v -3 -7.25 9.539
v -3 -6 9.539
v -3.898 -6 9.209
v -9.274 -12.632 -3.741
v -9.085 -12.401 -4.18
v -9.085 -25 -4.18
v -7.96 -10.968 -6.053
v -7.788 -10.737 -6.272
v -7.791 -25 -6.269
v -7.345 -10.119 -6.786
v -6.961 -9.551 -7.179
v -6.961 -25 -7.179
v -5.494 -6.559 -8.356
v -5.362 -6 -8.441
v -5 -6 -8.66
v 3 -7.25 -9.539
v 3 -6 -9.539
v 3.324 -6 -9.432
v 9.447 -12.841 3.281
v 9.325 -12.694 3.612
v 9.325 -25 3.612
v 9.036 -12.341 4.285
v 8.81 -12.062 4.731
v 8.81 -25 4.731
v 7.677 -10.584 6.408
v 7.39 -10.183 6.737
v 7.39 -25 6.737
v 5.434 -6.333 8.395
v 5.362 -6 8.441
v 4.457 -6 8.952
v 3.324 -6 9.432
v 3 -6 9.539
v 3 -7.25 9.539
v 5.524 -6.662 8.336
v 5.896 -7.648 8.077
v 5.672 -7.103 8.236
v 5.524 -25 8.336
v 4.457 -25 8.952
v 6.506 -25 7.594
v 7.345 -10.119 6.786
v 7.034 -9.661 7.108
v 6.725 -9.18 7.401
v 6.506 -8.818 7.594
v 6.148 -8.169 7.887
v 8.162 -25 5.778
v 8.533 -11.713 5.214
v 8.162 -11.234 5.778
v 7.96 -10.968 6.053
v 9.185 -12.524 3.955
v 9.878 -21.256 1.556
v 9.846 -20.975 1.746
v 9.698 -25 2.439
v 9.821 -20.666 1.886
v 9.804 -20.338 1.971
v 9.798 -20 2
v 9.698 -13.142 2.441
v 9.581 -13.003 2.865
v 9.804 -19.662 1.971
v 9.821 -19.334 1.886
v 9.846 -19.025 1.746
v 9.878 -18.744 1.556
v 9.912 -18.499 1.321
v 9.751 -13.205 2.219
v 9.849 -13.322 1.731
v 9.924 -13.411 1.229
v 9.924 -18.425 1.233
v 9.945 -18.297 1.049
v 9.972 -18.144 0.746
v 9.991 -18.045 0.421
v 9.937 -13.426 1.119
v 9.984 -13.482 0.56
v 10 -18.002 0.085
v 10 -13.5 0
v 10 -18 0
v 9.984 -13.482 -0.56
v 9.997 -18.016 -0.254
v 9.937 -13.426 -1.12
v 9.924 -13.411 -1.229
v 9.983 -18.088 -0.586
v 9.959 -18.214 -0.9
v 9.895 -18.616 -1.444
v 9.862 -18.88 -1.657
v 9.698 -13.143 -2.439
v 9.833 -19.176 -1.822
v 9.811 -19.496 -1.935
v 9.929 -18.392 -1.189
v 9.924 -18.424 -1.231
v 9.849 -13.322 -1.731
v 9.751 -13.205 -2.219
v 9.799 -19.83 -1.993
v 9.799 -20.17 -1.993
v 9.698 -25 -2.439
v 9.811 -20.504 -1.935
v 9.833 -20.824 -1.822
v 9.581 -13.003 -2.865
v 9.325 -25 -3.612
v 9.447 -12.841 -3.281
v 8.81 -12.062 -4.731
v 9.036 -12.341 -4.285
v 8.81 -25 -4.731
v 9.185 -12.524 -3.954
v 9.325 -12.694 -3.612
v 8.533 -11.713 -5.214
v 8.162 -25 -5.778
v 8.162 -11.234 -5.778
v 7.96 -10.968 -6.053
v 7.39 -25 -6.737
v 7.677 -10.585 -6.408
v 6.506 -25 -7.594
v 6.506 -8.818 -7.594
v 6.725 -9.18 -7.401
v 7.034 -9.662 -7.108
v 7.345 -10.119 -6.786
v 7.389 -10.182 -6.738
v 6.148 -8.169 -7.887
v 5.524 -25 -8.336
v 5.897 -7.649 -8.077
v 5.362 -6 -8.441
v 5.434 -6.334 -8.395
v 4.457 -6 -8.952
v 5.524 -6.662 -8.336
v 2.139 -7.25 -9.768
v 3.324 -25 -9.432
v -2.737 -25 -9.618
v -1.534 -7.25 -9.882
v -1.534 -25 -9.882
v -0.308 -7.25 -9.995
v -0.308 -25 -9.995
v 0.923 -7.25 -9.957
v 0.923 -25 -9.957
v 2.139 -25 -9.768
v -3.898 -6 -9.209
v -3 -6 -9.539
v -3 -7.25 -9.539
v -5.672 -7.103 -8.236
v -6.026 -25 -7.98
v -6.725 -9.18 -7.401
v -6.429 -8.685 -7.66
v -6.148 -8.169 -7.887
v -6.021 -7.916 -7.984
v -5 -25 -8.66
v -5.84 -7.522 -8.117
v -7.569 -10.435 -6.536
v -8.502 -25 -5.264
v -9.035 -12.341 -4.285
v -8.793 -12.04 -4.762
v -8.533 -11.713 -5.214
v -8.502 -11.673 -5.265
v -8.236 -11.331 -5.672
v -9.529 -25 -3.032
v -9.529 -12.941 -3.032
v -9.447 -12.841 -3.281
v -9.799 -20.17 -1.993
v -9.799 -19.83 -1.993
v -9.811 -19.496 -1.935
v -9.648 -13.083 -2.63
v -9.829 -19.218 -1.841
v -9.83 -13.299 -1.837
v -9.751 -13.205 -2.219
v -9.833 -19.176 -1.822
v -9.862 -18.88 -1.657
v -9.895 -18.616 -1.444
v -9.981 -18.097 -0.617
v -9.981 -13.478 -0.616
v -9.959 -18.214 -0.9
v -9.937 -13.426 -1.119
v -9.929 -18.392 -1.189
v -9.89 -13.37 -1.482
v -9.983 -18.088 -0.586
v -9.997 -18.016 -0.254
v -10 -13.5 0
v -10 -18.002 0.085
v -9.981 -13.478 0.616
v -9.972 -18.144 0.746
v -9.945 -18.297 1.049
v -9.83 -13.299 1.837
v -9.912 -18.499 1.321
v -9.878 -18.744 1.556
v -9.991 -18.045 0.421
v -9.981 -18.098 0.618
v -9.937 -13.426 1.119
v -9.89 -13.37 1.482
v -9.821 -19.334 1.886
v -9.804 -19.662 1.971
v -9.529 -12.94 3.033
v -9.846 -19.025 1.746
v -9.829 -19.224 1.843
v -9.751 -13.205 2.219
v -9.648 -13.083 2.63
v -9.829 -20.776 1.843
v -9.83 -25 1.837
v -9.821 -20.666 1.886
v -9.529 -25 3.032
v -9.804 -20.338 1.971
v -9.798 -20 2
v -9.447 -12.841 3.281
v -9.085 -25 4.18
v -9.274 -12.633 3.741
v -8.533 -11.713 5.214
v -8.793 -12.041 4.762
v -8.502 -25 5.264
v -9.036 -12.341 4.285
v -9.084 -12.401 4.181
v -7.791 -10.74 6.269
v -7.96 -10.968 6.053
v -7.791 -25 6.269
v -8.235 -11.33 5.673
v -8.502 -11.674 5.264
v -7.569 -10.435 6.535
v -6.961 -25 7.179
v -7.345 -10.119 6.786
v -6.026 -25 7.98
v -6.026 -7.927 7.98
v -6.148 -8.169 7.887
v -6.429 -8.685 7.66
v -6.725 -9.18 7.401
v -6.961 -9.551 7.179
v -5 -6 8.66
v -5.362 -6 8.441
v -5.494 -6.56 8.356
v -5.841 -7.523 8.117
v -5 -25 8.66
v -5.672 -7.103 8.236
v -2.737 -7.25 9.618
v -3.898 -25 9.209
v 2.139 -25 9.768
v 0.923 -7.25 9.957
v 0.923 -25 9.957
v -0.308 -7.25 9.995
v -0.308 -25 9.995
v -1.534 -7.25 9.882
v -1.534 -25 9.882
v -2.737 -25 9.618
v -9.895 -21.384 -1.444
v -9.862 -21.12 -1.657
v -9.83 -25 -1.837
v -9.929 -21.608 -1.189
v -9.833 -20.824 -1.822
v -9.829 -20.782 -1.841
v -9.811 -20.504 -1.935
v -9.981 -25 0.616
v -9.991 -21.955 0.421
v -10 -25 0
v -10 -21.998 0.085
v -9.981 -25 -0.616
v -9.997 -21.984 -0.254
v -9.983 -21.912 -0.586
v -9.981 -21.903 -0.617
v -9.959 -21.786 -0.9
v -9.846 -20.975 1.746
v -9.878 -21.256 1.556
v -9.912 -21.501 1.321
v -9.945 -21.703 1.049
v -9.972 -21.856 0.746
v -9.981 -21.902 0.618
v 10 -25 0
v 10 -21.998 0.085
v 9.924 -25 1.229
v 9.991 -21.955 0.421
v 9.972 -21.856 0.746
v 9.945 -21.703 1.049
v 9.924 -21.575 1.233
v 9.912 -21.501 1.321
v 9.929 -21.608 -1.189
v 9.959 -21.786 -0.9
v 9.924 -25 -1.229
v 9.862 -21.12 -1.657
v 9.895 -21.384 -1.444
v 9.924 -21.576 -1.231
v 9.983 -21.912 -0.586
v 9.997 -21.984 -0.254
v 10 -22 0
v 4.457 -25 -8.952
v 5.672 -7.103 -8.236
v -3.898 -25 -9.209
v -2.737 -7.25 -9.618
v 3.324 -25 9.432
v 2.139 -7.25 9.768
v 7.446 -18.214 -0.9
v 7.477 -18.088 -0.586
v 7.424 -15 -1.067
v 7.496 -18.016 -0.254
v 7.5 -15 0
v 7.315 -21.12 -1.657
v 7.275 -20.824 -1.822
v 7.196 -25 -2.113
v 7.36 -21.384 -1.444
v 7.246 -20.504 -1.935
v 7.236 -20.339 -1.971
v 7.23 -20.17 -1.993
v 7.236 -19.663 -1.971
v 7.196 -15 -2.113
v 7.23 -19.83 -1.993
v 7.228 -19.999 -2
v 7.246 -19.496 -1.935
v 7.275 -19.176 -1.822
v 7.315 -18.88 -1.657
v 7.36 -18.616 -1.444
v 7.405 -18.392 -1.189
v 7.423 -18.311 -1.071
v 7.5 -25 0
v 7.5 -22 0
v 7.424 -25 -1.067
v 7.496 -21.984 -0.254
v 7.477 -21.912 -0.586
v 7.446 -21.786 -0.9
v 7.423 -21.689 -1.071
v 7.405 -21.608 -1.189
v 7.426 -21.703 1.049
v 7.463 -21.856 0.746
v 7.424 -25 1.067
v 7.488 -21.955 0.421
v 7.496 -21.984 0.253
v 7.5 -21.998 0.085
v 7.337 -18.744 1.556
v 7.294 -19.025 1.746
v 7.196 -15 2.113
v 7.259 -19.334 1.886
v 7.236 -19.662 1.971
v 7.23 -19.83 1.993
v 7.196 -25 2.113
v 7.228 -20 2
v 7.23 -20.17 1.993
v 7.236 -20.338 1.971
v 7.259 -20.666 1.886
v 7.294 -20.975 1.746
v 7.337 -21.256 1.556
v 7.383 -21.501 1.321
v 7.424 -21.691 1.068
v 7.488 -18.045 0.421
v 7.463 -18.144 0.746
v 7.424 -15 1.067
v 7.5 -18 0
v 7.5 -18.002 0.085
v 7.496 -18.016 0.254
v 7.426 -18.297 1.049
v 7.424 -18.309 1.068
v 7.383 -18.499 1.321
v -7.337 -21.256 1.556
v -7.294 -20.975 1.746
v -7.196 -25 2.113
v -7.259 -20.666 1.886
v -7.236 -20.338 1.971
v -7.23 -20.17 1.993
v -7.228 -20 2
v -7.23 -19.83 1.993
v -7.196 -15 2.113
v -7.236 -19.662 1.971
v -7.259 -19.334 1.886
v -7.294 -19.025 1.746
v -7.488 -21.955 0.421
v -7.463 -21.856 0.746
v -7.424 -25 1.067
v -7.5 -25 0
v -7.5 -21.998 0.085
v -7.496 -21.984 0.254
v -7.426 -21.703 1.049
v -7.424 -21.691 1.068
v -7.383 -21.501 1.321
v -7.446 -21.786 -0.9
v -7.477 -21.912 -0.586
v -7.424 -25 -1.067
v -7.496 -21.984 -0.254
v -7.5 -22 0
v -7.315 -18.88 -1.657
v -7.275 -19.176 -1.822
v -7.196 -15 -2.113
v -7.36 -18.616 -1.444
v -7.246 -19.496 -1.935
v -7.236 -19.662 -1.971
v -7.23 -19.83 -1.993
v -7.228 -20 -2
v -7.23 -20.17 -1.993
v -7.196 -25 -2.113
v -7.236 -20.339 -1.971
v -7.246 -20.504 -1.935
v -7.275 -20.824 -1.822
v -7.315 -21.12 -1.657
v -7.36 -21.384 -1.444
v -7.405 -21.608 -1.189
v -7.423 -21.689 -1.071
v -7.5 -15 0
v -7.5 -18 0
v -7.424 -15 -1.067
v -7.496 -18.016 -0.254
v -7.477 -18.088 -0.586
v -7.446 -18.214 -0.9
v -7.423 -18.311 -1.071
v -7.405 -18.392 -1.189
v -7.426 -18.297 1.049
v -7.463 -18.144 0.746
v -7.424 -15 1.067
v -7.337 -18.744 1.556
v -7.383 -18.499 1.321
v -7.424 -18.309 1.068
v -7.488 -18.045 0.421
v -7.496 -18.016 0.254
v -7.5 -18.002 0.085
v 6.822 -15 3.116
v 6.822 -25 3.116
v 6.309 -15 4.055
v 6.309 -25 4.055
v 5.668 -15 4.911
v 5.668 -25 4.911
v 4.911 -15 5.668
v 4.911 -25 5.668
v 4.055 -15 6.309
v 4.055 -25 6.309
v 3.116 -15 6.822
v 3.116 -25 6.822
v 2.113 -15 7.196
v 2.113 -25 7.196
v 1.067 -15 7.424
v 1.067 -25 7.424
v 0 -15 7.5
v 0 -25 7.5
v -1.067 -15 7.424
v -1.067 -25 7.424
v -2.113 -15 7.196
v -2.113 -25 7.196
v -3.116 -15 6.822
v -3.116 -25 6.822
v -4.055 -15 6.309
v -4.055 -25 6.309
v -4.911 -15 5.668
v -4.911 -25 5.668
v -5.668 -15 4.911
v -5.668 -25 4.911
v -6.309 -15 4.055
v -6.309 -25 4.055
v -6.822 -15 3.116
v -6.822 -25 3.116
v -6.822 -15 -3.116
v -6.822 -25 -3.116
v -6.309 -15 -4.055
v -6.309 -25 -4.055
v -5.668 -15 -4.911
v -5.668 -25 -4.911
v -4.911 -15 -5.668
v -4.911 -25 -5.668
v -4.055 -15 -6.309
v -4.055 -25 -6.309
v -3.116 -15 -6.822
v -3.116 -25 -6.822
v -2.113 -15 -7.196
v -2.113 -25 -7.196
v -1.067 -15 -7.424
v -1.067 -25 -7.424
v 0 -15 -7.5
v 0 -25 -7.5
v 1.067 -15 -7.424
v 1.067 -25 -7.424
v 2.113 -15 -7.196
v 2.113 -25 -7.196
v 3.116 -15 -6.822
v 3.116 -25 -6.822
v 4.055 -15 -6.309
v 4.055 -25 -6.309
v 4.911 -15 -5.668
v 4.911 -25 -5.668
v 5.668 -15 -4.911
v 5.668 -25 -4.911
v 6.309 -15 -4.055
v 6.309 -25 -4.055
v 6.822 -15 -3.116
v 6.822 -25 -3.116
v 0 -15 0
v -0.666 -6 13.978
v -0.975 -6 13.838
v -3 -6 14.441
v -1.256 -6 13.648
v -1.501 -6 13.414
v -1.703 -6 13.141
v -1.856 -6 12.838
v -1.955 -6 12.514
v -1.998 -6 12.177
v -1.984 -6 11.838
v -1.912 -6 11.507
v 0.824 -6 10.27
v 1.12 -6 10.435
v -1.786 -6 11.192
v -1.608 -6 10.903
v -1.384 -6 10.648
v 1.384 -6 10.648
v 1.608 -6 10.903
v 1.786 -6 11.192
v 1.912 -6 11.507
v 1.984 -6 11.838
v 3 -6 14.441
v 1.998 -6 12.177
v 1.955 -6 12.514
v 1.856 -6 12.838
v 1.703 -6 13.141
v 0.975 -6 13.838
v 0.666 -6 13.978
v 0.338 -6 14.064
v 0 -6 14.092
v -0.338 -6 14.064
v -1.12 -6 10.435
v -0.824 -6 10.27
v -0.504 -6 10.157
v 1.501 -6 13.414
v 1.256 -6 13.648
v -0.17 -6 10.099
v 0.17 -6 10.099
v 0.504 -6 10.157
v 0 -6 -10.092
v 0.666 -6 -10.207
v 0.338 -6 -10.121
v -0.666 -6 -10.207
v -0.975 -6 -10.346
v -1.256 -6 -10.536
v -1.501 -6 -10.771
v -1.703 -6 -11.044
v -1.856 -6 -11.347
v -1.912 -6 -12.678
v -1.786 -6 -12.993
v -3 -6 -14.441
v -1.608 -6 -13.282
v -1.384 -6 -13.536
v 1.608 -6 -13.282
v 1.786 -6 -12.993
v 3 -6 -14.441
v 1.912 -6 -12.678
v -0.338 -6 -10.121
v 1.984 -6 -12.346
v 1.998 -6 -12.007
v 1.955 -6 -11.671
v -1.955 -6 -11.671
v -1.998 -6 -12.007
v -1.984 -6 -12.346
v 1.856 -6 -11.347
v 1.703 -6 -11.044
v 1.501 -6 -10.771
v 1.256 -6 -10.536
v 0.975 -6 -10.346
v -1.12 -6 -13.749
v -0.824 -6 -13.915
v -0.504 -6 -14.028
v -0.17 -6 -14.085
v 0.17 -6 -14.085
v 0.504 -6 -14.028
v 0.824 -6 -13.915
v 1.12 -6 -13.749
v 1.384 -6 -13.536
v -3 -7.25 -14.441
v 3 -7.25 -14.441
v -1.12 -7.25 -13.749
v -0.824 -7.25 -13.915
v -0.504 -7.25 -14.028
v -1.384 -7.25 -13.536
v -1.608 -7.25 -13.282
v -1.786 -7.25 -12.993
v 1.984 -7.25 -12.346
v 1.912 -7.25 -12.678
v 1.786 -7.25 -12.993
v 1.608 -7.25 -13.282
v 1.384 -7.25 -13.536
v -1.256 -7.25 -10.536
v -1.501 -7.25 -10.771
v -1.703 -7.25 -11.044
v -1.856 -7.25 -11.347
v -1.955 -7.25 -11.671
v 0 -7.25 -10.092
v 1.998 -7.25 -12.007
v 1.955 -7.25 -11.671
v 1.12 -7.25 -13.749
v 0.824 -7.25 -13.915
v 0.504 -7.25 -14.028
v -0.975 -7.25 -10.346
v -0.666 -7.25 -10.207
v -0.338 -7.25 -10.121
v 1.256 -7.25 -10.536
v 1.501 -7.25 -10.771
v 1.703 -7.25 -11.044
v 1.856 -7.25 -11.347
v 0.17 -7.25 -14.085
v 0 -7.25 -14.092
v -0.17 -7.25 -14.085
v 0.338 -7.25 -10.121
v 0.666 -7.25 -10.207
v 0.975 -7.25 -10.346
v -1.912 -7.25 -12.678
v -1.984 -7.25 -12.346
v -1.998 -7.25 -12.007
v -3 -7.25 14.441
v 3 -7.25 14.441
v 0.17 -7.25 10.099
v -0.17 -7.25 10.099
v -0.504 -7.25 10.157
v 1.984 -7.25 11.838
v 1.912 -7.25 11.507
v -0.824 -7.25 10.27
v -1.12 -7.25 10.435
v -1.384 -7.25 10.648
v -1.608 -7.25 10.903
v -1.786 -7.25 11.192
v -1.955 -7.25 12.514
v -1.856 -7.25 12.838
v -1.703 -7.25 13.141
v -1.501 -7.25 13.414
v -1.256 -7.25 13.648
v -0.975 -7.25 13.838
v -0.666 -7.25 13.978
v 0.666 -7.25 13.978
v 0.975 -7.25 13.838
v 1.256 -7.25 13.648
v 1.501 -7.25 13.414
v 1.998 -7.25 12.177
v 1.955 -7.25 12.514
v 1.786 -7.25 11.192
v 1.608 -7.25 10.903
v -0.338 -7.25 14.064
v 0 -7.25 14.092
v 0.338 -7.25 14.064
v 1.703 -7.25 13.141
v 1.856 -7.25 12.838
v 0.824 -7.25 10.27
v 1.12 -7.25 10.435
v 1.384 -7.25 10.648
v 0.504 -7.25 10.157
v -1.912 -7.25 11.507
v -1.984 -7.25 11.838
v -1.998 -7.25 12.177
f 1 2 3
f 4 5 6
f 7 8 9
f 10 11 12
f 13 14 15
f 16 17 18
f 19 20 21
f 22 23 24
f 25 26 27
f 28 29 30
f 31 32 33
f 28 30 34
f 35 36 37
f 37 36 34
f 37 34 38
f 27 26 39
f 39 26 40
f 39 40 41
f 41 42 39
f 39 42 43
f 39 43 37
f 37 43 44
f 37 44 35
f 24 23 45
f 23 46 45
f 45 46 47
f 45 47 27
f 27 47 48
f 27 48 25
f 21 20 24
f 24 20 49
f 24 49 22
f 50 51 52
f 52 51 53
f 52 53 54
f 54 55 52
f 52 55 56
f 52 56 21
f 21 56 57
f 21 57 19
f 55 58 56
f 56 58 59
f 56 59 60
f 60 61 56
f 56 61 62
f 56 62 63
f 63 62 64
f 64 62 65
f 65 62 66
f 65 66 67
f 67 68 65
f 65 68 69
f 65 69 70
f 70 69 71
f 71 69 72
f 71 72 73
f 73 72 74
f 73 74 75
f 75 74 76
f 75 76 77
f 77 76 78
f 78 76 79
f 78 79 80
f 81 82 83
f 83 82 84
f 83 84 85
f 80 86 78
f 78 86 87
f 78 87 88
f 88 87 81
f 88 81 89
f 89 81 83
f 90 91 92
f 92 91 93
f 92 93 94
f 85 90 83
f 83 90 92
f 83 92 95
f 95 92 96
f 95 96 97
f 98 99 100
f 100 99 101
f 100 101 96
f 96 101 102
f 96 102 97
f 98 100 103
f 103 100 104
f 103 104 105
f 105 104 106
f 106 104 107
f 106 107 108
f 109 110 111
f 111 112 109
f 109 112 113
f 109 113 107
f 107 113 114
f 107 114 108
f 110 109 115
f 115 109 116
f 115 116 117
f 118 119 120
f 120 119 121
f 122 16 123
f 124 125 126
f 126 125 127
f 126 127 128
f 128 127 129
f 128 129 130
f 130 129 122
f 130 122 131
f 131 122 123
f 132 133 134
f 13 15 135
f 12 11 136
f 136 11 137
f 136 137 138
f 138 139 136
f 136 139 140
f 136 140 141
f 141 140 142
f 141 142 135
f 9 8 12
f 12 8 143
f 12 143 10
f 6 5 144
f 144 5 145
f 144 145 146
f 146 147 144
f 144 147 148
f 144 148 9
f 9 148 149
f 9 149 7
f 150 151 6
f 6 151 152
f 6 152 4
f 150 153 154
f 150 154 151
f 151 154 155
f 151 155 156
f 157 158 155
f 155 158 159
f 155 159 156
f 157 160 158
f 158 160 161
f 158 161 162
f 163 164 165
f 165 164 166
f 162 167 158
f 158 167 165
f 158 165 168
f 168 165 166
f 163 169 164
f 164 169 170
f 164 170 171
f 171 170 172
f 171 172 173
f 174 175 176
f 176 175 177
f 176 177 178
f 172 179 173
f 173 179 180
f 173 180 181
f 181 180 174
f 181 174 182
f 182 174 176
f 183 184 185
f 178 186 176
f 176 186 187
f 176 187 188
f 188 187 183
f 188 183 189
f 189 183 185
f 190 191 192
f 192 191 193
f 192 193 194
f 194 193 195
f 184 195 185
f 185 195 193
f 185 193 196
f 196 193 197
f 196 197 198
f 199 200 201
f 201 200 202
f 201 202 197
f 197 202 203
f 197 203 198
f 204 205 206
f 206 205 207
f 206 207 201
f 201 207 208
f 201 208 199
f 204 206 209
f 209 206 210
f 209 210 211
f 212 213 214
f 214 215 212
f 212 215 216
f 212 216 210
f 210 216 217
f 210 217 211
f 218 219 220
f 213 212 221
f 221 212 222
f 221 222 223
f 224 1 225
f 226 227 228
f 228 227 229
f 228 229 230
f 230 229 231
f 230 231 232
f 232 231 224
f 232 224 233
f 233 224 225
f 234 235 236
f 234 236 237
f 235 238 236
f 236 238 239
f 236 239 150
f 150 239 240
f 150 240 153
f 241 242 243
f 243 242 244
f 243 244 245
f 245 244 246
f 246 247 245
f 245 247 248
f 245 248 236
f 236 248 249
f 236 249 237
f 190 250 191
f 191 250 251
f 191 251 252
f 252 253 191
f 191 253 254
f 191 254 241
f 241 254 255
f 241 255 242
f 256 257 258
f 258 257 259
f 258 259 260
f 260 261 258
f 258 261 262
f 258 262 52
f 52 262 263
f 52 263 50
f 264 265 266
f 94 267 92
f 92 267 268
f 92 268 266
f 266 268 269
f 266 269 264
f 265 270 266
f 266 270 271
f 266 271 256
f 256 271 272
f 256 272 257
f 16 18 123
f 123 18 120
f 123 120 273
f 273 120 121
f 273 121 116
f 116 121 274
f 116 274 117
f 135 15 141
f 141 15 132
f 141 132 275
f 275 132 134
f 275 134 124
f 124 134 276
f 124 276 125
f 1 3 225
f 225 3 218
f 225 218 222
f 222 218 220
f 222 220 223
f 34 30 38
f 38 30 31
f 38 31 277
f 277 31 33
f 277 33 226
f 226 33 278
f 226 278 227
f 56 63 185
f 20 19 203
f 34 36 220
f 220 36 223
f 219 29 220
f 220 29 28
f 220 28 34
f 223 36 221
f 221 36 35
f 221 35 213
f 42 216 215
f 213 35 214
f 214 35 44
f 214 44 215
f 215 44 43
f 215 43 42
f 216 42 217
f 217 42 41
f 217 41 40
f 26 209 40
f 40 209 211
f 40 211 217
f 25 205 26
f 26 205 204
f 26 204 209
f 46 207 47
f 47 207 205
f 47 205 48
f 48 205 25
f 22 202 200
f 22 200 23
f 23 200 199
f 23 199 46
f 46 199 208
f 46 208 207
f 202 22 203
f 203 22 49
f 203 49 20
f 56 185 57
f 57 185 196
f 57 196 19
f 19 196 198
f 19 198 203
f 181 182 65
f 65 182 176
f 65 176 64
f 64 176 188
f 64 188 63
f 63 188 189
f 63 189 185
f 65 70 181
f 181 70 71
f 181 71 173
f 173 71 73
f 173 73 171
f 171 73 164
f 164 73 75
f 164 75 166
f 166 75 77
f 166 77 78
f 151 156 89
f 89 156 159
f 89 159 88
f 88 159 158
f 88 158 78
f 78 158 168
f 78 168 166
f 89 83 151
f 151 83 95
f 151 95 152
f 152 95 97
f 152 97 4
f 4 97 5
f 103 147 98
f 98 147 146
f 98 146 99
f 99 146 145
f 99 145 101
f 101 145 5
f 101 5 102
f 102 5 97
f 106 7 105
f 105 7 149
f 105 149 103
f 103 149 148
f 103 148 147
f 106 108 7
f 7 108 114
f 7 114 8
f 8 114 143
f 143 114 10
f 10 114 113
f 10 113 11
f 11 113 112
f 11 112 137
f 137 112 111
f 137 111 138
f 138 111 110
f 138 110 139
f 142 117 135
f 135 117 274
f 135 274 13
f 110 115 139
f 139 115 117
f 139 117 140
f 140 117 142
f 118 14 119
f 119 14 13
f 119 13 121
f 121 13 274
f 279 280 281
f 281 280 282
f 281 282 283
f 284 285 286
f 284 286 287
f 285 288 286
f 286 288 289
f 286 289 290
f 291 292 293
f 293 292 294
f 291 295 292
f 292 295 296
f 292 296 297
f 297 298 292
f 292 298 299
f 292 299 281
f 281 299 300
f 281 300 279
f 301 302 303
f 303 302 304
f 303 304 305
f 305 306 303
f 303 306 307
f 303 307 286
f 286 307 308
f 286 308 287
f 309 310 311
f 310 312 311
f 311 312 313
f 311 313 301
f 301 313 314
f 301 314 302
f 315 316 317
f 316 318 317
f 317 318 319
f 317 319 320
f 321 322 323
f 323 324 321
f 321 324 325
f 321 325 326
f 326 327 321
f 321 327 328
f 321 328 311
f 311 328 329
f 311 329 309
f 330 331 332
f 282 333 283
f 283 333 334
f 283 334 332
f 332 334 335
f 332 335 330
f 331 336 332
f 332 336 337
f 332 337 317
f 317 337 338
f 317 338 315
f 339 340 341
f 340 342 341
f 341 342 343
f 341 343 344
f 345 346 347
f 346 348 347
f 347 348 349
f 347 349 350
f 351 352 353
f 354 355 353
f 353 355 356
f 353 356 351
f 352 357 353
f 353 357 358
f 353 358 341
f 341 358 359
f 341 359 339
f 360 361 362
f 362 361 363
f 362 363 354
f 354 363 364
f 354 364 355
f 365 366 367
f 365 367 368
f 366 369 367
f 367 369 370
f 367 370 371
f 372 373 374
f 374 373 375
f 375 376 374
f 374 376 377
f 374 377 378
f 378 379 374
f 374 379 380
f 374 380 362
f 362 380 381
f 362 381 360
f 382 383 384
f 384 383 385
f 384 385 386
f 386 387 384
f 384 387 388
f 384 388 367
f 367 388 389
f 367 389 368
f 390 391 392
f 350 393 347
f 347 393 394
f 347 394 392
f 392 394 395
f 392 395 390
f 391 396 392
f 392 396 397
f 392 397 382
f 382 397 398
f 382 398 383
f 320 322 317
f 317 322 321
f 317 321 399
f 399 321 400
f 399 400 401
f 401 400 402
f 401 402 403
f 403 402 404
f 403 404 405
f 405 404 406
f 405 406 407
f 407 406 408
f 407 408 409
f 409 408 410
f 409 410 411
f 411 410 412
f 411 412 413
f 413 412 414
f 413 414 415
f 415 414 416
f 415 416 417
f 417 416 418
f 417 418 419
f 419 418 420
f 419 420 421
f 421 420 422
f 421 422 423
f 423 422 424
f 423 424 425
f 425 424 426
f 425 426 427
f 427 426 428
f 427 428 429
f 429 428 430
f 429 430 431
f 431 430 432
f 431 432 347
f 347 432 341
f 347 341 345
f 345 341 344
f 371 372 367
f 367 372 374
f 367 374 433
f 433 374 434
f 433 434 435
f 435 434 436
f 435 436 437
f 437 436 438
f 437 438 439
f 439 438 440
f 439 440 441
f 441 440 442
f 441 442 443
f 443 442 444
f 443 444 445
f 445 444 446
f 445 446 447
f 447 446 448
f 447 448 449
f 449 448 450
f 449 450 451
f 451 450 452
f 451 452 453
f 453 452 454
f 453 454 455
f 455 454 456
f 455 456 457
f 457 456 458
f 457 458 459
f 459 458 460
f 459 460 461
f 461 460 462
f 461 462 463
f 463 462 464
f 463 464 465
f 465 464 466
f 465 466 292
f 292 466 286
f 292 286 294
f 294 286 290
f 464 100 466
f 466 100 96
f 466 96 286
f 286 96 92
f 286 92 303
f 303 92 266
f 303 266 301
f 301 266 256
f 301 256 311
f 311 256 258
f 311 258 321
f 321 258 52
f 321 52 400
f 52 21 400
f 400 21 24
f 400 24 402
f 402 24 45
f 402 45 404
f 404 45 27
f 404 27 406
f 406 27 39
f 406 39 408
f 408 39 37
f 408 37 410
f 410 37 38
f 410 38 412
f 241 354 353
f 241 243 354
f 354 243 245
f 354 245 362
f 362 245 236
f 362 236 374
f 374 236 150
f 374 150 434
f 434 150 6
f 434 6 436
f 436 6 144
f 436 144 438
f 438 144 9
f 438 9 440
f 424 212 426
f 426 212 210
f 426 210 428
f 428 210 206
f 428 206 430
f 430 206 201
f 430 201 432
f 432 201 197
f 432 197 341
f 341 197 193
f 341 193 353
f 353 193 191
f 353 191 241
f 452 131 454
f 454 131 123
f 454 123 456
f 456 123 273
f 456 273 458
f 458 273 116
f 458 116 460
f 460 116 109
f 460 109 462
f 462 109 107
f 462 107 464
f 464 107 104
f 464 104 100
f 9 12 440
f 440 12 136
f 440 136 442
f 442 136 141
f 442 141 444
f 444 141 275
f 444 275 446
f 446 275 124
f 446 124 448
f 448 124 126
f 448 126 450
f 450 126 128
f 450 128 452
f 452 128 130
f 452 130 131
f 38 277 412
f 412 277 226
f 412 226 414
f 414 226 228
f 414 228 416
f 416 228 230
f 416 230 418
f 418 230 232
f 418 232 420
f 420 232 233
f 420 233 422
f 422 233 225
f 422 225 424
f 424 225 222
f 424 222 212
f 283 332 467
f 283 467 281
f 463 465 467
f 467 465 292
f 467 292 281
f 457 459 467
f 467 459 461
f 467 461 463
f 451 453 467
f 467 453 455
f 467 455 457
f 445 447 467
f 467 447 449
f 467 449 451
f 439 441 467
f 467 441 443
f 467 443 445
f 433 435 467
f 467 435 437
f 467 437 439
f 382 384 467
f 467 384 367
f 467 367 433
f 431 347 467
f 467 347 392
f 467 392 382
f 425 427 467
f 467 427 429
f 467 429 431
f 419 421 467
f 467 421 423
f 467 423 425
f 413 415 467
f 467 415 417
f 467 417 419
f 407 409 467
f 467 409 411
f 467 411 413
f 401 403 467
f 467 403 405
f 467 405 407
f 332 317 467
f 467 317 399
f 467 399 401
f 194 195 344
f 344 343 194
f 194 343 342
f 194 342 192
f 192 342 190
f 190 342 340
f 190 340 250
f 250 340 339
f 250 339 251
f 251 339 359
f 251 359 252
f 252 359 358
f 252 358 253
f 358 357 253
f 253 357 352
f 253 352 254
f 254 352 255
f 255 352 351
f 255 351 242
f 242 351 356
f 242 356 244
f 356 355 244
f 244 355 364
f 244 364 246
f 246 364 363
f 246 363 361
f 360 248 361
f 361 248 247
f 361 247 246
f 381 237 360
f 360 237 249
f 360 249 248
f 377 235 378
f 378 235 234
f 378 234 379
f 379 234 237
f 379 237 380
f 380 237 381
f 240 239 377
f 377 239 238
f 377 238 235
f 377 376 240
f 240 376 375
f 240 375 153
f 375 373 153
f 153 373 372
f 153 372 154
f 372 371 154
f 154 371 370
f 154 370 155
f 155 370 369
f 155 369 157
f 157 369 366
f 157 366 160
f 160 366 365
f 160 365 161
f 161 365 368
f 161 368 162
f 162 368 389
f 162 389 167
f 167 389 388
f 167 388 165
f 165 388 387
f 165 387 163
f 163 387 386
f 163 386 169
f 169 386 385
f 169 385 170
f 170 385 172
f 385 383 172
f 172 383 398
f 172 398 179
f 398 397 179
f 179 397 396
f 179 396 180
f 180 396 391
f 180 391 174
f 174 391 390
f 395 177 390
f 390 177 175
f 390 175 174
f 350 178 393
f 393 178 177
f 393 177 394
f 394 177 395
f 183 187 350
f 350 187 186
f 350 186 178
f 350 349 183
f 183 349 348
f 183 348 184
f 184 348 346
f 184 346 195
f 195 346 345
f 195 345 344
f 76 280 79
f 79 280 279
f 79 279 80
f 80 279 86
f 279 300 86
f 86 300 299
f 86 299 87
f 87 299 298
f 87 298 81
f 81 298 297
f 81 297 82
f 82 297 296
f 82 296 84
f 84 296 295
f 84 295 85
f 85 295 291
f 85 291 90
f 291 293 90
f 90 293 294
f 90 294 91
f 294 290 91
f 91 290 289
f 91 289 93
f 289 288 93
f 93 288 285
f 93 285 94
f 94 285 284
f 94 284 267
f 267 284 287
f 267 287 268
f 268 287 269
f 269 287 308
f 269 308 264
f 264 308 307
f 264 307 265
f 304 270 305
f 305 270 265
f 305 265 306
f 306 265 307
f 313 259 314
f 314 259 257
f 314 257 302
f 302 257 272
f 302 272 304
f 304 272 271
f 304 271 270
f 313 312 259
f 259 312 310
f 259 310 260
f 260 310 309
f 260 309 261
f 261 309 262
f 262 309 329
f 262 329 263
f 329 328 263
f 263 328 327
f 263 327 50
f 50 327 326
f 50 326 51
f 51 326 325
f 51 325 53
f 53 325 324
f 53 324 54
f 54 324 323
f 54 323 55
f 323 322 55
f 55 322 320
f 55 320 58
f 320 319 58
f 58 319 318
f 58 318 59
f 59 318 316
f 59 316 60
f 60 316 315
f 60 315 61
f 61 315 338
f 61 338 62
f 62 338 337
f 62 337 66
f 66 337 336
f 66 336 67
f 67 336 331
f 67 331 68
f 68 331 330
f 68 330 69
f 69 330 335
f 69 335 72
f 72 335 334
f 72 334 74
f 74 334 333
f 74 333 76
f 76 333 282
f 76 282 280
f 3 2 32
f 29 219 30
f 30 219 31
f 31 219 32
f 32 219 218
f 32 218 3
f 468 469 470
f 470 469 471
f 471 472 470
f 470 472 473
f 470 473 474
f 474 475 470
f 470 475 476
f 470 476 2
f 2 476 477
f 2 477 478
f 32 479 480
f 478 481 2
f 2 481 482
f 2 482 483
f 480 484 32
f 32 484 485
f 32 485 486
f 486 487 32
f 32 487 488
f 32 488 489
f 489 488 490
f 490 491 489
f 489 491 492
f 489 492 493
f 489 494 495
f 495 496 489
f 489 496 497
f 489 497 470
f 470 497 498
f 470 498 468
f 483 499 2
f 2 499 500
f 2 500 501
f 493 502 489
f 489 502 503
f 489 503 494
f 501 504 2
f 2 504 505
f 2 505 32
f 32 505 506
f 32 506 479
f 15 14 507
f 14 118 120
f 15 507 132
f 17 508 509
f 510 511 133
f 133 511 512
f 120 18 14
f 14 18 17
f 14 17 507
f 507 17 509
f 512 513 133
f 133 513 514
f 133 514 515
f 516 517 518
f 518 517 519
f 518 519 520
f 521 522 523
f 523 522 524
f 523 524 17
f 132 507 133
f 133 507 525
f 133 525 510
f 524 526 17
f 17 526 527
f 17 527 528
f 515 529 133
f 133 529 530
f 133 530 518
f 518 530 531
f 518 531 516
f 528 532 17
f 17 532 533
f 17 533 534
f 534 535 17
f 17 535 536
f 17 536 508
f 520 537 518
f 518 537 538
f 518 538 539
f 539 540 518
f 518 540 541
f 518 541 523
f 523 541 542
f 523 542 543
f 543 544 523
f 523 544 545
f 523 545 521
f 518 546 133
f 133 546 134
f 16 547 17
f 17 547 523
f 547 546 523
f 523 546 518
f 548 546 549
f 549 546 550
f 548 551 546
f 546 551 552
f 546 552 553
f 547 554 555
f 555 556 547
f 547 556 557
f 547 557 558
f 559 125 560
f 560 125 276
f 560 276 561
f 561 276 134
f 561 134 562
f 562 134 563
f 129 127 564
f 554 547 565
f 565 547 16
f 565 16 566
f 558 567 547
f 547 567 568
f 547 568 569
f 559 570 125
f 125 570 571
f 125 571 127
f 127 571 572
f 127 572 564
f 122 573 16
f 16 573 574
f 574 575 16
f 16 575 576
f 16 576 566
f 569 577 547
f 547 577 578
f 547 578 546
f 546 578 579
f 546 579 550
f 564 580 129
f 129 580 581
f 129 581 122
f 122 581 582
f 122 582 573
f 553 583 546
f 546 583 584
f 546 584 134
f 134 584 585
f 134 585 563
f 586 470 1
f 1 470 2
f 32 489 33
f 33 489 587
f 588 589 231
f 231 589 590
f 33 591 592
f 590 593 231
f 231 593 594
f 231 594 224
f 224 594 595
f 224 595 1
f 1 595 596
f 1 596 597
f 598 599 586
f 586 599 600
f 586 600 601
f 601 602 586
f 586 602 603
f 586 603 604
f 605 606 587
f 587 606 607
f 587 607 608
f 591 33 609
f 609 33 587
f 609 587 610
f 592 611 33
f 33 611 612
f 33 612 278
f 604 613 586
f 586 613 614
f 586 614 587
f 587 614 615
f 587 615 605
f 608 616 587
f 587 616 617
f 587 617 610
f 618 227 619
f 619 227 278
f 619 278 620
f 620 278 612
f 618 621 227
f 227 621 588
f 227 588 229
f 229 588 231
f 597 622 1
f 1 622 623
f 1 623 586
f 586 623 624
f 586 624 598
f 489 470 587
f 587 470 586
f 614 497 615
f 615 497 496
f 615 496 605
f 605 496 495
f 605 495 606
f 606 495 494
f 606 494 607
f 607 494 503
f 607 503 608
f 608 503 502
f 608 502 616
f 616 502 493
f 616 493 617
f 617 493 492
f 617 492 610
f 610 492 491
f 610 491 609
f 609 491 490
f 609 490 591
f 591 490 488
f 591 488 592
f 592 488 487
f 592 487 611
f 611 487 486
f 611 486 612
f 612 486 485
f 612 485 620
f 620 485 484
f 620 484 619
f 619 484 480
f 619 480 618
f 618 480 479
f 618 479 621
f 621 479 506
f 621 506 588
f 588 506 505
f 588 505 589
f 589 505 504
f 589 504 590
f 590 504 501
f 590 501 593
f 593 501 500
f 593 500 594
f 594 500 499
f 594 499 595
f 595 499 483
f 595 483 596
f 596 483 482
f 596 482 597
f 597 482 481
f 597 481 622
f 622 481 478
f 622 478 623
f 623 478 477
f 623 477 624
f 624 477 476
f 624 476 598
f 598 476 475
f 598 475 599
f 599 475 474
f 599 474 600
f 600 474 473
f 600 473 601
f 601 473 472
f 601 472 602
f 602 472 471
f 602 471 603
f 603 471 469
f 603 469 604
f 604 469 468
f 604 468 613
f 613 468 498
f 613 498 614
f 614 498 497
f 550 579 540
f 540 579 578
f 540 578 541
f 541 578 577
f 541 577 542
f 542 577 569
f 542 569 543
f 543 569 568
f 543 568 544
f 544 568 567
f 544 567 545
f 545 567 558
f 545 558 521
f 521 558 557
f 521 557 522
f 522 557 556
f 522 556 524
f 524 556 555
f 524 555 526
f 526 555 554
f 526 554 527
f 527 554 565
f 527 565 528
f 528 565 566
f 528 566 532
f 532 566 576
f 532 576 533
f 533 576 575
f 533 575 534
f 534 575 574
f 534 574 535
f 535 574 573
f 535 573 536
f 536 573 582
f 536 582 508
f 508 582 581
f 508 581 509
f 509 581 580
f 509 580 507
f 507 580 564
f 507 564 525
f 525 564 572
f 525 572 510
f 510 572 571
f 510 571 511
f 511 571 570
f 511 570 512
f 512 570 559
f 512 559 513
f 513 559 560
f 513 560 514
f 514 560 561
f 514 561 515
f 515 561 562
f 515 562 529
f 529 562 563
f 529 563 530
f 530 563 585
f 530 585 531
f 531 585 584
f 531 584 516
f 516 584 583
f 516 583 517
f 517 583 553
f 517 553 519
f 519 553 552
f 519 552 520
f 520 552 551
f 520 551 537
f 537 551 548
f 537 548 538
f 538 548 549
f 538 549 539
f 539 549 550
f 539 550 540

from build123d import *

# Parameters (mm, degrees)
SKETCH2_R                = 10
BOSS_EXTRUDE1_DEPTH      = 30
CUT_EXTRUDE1_START       = -10
SKETCH3_R                = 10
SKETCH3_R_2              = 7.5
CUT_EXTRUDE1_DEPTH       = 10
CUT_EXTRUDE3_DEPTH       = 10
CUT_EXTRUDE3_DEPTH_BACK  = 10
SKETCH5_R                = 2
FILLET2_R                = 10
BOSS_EXTRUDE2_START      = -67.5
SKETCH7_R                = 10
BOSS_EXTRUDE2_DEPTH      = 67.5
SKETCH8_R                = 50
SKETCH8_R_2              = 10
CUT_EXTRUDE6_DEPTH       = 107.770782567
SKETCH9_R                = 7.5
CUT_EXTRUDE7_DEPTH       = 10
CUT_EXTRUDE8_DEPTH       = 10
CUT_EXTRUDE8_DEPTH_BACK  = 10
SKETCH10_R               = 2
CUT_EXTRUDE9_START       = -60
SKETCH11_R               = 10
SKETCH11_R_2             = 7.5
CUT_EXTRUDE9_DEPTH       = 60
CUT_EXTRUDE10_START      = -60
SKETCH12_R               = 7.5
CUT_EXTRUDE10_DEPTH      = 60
CUT_EXTRUDE11_DEPTH      = 60
CUT_EXTRUDE11_DEPTH_BACK = 60
SKETCH14_R               = 8.5
CUT_EXTRUDE12_DEPTH      = 60
CUT_EXTRUDE12_DEPTH_BACK = 60
SKETCH15_W               = 22.666202576
SKETCH15_H               = 2
BOSS_EXTRUDE3_DEPTH      = 3
BOSS_EXTRUDE3_DEPTH_BACK = 3
SKETCH16_W               = 6
SKETCH16_H               = 1.25
SKETCH18_R               = 2
CUT_EXTRUDE13_DEPTH      = 6.5
CUT_EXTRUDE15_DEPTH      = 16.5
CUT_EXTRUDE15_DEPTH_BACK = 16.5
SKETCH19_W               = 29.449673214
SKETCH19_H               = 14.848126233


with BuildPart() as part:
    # Sketch1 → Revolve1 (revolve)
    with BuildSketch(Plane.XY):
        Polygon((50, 25), (0, 25), (0, 22.5), (45, 22.5), (45, -22.5), (0, -22.5), (0, -25), (50, -25), align=None)
    revolve(axis=Axis((0, -25, 0), (0, 1, 0)))

    # Sketch2 → Boss-Extrude1 (add)
    with BuildSketch(Plane(origin=(0, 25, 0), x_dir=(1, 0, 0), z_dir=(0, 1, 0))):
        with Locations(Location((0, 0, 0), (0, 0, 180))):
            Circle(SKETCH2_R)
    extrude(amount=BOSS_EXTRUDE1_DEPTH)

    # Sketch3 → Cut-Extrude1 (cut)
    with BuildSketch(Plane(origin=(0, 55, 0), x_dir=(1, 0, 0), z_dir=(0, 1, 0)).offset(CUT_EXTRUDE1_START)):
        with Locations(Location((0, 0, 0), (0, 0, 180))):
            Circle(SKETCH3_R)
        with Locations(Location((0, 0, 0), (0, 0, 180))):
            Circle(SKETCH3_R_2, mode=Mode.SUBTRACT)
    extrude(amount=CUT_EXTRUDE1_DEPTH, mode=Mode.SUBTRACT)

    # Sketch5 → Cut-Extrude3 (cut, two sides: drawn at the far end of the back side and taken through both)
    with BuildSketch(Plane(origin=(0, 0, 0), x_dir=(0, 0, -1), z_dir=(1, 0, 0)).offset(-CUT_EXTRUDE3_DEPTH_BACK)):
        with Locations(Location((0, 50, 0), (0, 0, 180))):
            Circle(SKETCH5_R)
    extrude(amount=CUT_EXTRUDE3_DEPTH + CUT_EXTRUDE3_DEPTH_BACK, mode=Mode.SUBTRACT)

    # Fillet2
    fillet2_edges = [part.edges().sort_by_distance(p)[0] for p in [
        (-50, 25, 0),
    ]]
    fillet(fillet2_edges, radius=FILLET2_R)

    # Sketch7 → Boss-Extrude2 (add)
    with BuildSketch(Plane(origin=(0, 45, 0), x_dir=(1, 0, 0), z_dir=(0, 1, 0)).offset(BOSS_EXTRUDE2_START)):
        with Locations(Location((0, 0, 0), (0, 0, 180))):
            Circle(SKETCH7_R)
    extrude(amount=BOSS_EXTRUDE2_DEPTH)

    # Sketch8 → Cut-Extrude6 (cut, through all)
    with BuildSketch(Plane(origin=(0, 55, 0), x_dir=(1, 0, 0), z_dir=(0, 1, 0))):
        Circle(SKETCH8_R)
        with Locations(Location((0, 0, 0), (0, 0, 180))):
            Circle(SKETCH8_R_2, mode=Mode.SUBTRACT)
    extrude(amount=-CUT_EXTRUDE6_DEPTH, mode=Mode.SUBTRACT)

    # Sketch9 → Cut-Extrude7 (cut)
    with BuildSketch(Plane.XZ.offset(25)):
        with Locations(Location((0, 0, 0), (0, 0, 180))):
            Circle(SKETCH9_R)
    extrude(amount=-CUT_EXTRUDE7_DEPTH, mode=Mode.SUBTRACT)

    # Sketch10 → Cut-Extrude8 (cut, two sides: drawn at the far end of the back side and taken through both)
    with BuildSketch(Plane(origin=(0, 0, 0), x_dir=(0, 0, -1), z_dir=(1, 0, 0)).offset(-CUT_EXTRUDE8_DEPTH_BACK)):
        with Locations(Location((0, -20, 0), (0, 0, 180))):
            Circle(SKETCH10_R)
    extrude(amount=CUT_EXTRUDE8_DEPTH + CUT_EXTRUDE8_DEPTH_BACK, mode=Mode.SUBTRACT)

    # Sketch11 → Cut-Extrude9 (cut)
    with BuildSketch(Plane(origin=(0, 55, 0), x_dir=(1, 0, 0), z_dir=(0, 1, 0)).offset(CUT_EXTRUDE9_START)):
        with Locations(Location((0, 0, 0), (0, 0, 180))):
            Circle(SKETCH11_R)
        Circle(SKETCH11_R_2, mode=Mode.SUBTRACT)
    extrude(amount=CUT_EXTRUDE9_DEPTH, mode=Mode.SUBTRACT)

    # Sketch12 → Cut-Extrude10 (cut)
    with BuildSketch(Plane(origin=(0, 55, 0), x_dir=(1, 0, 0), z_dir=(0, 1, 0)).offset(CUT_EXTRUDE10_START)):
        Circle(SKETCH12_R)
    extrude(amount=CUT_EXTRUDE10_DEPTH, mode=Mode.SUBTRACT)

    # Sketch13 → Revolve2 (revolve)
    with BuildSketch(Plane(origin=(0, 0, 0), x_dir=(0, 0, -1), z_dir=(1, 0, 0))):
        with BuildLine():
            Line((0, -15), (0, 5))
            ThreePointArc((0, 5), (-10, -5), (0, -15))
        make_face()
    revolve(axis=Axis((0, -15, 0), (0, 1, 0)))

    # Sketch14 → Cut-Extrude11 (cut, two sides: drawn at the far end of the back side and taken through both)
    with BuildSketch(Plane(origin=(0, 0, 0), x_dir=(0, 0, -1), z_dir=(1, 0, 0)).offset(-CUT_EXTRUDE11_DEPTH_BACK)):
        with Locations(Location((0, -5, 0), (0, 0, 180))):
            Circle(SKETCH14_R)
    extrude(amount=CUT_EXTRUDE11_DEPTH + CUT_EXTRUDE11_DEPTH_BACK, mode=Mode.SUBTRACT)

    # Sketch15 → Cut-Extrude12 (cut, two sides: drawn at the far end of the back side and taken through both)
    with BuildSketch(Plane(origin=(0, 0, 0), x_dir=(0, 0, -1), z_dir=(1, 0, 0)).offset(-CUT_EXTRUDE12_DEPTH_BACK)):
        with Locations((0, -5)):
            Rectangle(SKETCH15_W, SKETCH15_H)
    extrude(amount=CUT_EXTRUDE12_DEPTH + CUT_EXTRUDE12_DEPTH_BACK, mode=Mode.SUBTRACT)


with BuildPart() as cut_extrude12_piece_1:
    # of the separate pieces the step leaves, piece 1, a body of its own (cut_extrude12_pieces)
    add(part.part.solids().sort_by_distance((-10, -25, 0))[0])



with BuildPart() as cut_extrude12_piece_2:
    # of the separate pieces the step leaves, piece 2, a body of its own (cut_extrude12_pieces)
    add(part.part.solids().sort_by_distance((5.267826876, -4, 8.440971508))[0])


with BuildPart() as cut_extrude12_piece_1_1:
    add(cut_extrude12_piece_1.part)

    add(cut_extrude12_piece_2.part)  # Boss-Extrude3 merges Cut-Extrude12 piece 2
    # Sketch16 → Boss-Extrude3 (add, two sides: drawn at the far end of the back side and taken through both)
    with BuildSketch(Plane(origin=(0, 0, 0), x_dir=(0, 0, -1), z_dir=(1, 0, 0)).offset(-BOSS_EXTRUDE3_DEPTH_BACK)):
        with Locations((-11.440971508, -3.375)):
            Rectangle(SKETCH16_W, SKETCH16_H)
        with Locations((11.440971508, -3.375)):
            Rectangle(SKETCH16_W, SKETCH16_H)
        with Locations((11.440971508, -6.625)):
            Rectangle(SKETCH16_W, SKETCH16_H)
        with Locations((-11.440971508, -6.625)):
            Rectangle(SKETCH16_W, SKETCH16_H)
    extrude(amount=BOSS_EXTRUDE3_DEPTH + BOSS_EXTRUDE3_DEPTH_BACK)

    # Sketch18 → Cut-Extrude13 (cut)
    with BuildSketch(Plane(origin=(0, -2.75, 0), x_dir=(1, 0, 0), z_dir=(0, 1, 0))):
        with Locations(Location((0, 12.092279572, 0), (0, 0, 270))):
            Circle(SKETCH18_R)
        with Locations(Location((0, -12.092279572, 0), (0, 0, 270))):
            Circle(SKETCH18_R)
    extrude(amount=-CUT_EXTRUDE13_DEPTH, mode=Mode.SUBTRACT)

    # Sketch19 → Cut-Extrude15 (cut, two sides: drawn at the far end of the back side and taken through both)
    with BuildSketch(Plane(origin=(0, 0, 0), x_dir=(0, 0, -1), z_dir=(1, 0, 0)).offset(-CUT_EXTRUDE15_DEPTH_BACK)):
        with Locations((-0.022434936, 1.737788606)):
            Rectangle(SKETCH19_W, SKETCH19_H)
    extrude(amount=CUT_EXTRUDE15_DEPTH + CUT_EXTRUDE15_DEPTH_BACK, mode=Mode.SUBTRACT)


solid = cut_extrude12_piece_1_1.part
